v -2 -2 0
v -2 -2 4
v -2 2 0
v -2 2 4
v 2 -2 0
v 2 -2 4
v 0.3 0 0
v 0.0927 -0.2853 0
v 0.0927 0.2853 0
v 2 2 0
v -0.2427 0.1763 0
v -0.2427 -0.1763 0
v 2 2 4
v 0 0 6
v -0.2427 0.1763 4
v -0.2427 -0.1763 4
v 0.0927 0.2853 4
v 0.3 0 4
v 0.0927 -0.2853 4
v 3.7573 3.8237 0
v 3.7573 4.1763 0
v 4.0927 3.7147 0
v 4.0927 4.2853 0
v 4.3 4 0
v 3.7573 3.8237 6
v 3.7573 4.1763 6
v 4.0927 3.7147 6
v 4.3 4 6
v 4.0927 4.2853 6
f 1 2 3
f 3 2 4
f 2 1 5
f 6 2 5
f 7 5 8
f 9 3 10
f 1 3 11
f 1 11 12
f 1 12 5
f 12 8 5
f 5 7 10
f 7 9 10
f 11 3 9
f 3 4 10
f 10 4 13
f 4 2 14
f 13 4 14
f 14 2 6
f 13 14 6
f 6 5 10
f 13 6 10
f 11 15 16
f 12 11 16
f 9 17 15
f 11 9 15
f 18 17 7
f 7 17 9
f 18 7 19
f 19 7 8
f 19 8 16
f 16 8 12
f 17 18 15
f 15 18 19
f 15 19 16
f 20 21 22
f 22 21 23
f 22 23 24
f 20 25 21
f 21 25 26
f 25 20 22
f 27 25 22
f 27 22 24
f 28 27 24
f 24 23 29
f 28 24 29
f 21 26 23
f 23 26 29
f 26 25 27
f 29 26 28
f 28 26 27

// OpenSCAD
polyhedron(
  points=[ [2,2,4],[2,-2,4],[-2,-2,4],[-2,2,4], // the four points at base
           [0,0,6]  ],                                 // the apex point 
  triangles=[ [0,1,4],[1,2,4],[2,3,4],[3,0,4],          // each triangle side
              [1,0,3],[2,1,3] ]                         // two triangles for square base
 );

difference() {
	translate([-2,-2,0])
		cube(4,4,4);
	cylinder(h = 4, r = 0.3);
}

translate([4,4,0])
	cylinder(h = 6, r = 0.3);
